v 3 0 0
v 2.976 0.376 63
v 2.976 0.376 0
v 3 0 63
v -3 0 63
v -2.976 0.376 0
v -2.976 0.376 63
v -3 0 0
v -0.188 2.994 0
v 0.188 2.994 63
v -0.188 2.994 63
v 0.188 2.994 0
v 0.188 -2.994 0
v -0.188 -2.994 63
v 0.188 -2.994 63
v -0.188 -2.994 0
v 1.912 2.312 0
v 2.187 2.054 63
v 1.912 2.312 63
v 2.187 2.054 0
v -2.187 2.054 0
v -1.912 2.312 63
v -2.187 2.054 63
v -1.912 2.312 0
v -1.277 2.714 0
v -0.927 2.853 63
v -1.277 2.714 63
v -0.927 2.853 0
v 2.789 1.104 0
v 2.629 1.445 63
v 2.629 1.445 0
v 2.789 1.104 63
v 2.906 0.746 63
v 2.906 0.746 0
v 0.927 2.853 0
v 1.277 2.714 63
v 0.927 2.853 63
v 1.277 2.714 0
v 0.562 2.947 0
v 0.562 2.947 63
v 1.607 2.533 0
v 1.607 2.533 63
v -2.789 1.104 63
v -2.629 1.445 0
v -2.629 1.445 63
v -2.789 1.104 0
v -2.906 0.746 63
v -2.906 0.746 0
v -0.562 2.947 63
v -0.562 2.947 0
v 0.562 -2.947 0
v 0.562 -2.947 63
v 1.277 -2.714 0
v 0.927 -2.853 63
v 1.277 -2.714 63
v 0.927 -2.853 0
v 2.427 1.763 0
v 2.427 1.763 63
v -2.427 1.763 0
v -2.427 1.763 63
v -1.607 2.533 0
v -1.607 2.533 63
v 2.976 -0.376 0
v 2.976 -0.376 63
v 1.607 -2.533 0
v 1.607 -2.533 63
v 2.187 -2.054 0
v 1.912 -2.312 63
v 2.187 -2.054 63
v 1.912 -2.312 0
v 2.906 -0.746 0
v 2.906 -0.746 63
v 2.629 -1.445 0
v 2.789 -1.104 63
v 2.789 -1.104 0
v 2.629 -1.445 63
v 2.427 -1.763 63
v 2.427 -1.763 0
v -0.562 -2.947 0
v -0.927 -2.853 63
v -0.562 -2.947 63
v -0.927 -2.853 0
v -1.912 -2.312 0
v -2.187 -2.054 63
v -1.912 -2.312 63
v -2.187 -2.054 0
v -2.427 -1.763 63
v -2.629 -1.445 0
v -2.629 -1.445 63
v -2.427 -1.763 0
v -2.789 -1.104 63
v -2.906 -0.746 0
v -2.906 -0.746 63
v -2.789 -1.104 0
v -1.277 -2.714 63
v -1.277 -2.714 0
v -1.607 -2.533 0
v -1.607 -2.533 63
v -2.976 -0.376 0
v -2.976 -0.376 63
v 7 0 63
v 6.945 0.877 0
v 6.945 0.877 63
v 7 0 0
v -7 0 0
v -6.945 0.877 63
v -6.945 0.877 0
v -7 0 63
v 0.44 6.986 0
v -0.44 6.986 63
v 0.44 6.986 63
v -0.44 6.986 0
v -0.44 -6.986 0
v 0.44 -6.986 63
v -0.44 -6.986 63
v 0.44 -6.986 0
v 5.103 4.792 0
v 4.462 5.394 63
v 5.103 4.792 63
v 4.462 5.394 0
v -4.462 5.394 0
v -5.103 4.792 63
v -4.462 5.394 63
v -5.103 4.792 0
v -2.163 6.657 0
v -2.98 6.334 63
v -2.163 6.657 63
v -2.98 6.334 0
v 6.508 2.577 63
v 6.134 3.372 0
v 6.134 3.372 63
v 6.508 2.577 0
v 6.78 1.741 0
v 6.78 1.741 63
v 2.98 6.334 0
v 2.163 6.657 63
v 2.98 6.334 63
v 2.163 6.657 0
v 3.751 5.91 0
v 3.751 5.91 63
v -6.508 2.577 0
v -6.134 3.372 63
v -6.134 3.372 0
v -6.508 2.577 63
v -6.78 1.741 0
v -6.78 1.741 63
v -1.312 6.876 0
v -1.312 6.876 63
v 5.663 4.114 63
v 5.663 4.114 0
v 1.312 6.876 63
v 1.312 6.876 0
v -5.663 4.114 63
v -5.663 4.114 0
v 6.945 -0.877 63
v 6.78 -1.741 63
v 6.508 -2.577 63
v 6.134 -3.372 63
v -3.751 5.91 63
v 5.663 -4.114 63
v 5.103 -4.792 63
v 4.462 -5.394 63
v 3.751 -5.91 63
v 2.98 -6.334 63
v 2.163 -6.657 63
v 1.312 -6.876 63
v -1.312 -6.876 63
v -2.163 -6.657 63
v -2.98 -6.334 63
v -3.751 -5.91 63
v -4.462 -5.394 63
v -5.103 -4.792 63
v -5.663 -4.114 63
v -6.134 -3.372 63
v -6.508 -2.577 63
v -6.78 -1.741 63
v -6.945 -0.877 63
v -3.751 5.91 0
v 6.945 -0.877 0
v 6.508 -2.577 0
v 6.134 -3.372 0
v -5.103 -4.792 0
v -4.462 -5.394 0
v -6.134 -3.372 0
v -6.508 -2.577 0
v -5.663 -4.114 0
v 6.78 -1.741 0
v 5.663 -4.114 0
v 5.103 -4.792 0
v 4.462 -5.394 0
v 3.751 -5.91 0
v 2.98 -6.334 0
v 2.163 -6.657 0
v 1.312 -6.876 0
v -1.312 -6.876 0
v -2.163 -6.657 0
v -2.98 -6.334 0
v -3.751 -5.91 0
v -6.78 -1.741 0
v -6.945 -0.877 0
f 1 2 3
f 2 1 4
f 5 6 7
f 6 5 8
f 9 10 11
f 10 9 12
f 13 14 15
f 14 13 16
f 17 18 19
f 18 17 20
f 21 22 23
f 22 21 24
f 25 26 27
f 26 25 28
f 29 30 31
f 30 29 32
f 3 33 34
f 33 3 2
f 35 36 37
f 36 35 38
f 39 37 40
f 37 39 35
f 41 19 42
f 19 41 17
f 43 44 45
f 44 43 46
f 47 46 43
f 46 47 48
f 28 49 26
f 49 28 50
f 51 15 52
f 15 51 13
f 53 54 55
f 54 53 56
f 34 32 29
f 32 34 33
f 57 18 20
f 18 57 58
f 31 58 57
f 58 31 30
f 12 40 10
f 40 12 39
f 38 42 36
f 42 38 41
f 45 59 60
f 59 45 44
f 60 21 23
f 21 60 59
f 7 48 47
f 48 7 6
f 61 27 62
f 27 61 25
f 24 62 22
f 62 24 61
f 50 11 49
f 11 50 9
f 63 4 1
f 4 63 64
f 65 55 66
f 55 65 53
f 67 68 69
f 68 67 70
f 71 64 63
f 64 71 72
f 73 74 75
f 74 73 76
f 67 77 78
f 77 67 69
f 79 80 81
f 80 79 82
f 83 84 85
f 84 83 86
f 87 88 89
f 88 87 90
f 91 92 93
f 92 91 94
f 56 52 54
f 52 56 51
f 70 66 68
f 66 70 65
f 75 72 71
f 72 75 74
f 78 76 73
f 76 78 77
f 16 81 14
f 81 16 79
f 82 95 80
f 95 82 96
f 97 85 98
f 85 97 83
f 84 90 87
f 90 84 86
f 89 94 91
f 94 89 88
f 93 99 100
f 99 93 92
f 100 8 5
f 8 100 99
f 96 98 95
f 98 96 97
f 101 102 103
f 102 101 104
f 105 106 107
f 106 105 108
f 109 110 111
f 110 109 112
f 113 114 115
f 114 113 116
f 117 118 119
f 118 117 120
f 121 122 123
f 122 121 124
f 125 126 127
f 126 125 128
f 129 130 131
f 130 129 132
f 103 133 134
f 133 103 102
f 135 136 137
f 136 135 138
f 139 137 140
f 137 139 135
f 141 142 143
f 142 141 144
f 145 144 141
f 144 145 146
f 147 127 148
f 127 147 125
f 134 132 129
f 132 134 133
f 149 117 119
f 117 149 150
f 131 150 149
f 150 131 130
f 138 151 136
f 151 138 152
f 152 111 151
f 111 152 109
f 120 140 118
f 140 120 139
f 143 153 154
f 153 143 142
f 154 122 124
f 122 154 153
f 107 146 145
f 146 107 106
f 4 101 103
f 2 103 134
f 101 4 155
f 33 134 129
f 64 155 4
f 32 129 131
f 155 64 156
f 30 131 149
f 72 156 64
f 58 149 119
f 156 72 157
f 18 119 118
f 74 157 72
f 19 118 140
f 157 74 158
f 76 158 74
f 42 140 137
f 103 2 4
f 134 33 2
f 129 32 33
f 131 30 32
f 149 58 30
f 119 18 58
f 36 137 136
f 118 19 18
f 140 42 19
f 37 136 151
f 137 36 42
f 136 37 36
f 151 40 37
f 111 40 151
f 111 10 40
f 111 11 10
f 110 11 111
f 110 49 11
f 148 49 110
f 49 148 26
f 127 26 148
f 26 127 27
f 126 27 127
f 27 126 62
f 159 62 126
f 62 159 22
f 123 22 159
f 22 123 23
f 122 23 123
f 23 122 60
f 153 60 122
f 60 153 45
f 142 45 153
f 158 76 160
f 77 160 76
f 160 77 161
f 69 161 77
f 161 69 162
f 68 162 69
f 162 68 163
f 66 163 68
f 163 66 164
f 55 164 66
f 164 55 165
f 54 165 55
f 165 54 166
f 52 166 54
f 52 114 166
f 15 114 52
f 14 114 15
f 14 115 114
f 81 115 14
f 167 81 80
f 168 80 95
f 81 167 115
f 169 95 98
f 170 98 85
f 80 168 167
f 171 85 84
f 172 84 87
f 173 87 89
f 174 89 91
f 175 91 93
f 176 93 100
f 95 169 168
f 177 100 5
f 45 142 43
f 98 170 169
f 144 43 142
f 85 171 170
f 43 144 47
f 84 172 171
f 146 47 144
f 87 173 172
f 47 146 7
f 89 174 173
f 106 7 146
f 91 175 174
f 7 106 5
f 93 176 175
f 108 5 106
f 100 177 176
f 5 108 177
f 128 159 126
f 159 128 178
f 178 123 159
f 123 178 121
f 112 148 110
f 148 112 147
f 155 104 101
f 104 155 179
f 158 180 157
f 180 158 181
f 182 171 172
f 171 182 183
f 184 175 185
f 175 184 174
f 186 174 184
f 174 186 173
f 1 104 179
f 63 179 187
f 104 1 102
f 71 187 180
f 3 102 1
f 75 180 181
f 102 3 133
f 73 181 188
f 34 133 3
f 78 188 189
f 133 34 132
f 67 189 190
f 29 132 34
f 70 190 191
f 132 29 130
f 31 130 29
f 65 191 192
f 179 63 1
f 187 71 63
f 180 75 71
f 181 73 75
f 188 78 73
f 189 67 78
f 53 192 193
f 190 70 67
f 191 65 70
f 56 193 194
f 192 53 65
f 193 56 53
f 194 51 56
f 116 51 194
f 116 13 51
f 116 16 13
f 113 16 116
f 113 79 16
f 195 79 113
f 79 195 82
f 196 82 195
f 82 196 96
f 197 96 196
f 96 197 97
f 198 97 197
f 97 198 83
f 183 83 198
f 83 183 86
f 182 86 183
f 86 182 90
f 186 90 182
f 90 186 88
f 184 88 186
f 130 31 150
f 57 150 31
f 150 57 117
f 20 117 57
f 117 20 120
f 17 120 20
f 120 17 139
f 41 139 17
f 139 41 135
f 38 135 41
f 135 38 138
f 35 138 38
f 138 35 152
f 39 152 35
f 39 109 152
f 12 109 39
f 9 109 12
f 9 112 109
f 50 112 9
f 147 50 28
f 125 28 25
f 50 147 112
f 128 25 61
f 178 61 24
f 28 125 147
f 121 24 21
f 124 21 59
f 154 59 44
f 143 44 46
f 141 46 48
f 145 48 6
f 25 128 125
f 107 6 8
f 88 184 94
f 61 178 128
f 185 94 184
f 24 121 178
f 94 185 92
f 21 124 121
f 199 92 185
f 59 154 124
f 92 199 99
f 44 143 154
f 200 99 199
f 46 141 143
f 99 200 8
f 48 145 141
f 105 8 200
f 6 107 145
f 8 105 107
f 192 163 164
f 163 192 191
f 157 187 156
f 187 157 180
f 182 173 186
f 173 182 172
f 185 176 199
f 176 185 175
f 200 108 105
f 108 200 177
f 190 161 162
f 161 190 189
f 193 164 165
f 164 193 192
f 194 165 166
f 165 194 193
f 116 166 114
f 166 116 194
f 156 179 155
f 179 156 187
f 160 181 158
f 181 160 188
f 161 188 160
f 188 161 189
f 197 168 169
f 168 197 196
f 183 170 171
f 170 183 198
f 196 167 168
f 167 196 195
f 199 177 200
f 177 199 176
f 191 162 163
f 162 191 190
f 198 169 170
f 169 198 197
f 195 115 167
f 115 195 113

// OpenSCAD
$fn = 50;


difference() {
	union() {
		cylinder(h = 63, r = 7.0000000000);
	}
	union() {
		cylinder(h = 63, r = 3.0000000000);
		cylinder(h = 63, r = 3.0000000000);
		cylinder(h = 63, r = 1.5000000000);
		cylinder(h = 63, r = 1.5000000000);
		cylinder(h = 63, r = 1.5000000000);
		cylinder(h = 63, r = 1.5000000000);
		cylinder(h = 63, r = 1.5000000000);
		cylinder(h = 63, r = 1.5000000000);
	}
}
